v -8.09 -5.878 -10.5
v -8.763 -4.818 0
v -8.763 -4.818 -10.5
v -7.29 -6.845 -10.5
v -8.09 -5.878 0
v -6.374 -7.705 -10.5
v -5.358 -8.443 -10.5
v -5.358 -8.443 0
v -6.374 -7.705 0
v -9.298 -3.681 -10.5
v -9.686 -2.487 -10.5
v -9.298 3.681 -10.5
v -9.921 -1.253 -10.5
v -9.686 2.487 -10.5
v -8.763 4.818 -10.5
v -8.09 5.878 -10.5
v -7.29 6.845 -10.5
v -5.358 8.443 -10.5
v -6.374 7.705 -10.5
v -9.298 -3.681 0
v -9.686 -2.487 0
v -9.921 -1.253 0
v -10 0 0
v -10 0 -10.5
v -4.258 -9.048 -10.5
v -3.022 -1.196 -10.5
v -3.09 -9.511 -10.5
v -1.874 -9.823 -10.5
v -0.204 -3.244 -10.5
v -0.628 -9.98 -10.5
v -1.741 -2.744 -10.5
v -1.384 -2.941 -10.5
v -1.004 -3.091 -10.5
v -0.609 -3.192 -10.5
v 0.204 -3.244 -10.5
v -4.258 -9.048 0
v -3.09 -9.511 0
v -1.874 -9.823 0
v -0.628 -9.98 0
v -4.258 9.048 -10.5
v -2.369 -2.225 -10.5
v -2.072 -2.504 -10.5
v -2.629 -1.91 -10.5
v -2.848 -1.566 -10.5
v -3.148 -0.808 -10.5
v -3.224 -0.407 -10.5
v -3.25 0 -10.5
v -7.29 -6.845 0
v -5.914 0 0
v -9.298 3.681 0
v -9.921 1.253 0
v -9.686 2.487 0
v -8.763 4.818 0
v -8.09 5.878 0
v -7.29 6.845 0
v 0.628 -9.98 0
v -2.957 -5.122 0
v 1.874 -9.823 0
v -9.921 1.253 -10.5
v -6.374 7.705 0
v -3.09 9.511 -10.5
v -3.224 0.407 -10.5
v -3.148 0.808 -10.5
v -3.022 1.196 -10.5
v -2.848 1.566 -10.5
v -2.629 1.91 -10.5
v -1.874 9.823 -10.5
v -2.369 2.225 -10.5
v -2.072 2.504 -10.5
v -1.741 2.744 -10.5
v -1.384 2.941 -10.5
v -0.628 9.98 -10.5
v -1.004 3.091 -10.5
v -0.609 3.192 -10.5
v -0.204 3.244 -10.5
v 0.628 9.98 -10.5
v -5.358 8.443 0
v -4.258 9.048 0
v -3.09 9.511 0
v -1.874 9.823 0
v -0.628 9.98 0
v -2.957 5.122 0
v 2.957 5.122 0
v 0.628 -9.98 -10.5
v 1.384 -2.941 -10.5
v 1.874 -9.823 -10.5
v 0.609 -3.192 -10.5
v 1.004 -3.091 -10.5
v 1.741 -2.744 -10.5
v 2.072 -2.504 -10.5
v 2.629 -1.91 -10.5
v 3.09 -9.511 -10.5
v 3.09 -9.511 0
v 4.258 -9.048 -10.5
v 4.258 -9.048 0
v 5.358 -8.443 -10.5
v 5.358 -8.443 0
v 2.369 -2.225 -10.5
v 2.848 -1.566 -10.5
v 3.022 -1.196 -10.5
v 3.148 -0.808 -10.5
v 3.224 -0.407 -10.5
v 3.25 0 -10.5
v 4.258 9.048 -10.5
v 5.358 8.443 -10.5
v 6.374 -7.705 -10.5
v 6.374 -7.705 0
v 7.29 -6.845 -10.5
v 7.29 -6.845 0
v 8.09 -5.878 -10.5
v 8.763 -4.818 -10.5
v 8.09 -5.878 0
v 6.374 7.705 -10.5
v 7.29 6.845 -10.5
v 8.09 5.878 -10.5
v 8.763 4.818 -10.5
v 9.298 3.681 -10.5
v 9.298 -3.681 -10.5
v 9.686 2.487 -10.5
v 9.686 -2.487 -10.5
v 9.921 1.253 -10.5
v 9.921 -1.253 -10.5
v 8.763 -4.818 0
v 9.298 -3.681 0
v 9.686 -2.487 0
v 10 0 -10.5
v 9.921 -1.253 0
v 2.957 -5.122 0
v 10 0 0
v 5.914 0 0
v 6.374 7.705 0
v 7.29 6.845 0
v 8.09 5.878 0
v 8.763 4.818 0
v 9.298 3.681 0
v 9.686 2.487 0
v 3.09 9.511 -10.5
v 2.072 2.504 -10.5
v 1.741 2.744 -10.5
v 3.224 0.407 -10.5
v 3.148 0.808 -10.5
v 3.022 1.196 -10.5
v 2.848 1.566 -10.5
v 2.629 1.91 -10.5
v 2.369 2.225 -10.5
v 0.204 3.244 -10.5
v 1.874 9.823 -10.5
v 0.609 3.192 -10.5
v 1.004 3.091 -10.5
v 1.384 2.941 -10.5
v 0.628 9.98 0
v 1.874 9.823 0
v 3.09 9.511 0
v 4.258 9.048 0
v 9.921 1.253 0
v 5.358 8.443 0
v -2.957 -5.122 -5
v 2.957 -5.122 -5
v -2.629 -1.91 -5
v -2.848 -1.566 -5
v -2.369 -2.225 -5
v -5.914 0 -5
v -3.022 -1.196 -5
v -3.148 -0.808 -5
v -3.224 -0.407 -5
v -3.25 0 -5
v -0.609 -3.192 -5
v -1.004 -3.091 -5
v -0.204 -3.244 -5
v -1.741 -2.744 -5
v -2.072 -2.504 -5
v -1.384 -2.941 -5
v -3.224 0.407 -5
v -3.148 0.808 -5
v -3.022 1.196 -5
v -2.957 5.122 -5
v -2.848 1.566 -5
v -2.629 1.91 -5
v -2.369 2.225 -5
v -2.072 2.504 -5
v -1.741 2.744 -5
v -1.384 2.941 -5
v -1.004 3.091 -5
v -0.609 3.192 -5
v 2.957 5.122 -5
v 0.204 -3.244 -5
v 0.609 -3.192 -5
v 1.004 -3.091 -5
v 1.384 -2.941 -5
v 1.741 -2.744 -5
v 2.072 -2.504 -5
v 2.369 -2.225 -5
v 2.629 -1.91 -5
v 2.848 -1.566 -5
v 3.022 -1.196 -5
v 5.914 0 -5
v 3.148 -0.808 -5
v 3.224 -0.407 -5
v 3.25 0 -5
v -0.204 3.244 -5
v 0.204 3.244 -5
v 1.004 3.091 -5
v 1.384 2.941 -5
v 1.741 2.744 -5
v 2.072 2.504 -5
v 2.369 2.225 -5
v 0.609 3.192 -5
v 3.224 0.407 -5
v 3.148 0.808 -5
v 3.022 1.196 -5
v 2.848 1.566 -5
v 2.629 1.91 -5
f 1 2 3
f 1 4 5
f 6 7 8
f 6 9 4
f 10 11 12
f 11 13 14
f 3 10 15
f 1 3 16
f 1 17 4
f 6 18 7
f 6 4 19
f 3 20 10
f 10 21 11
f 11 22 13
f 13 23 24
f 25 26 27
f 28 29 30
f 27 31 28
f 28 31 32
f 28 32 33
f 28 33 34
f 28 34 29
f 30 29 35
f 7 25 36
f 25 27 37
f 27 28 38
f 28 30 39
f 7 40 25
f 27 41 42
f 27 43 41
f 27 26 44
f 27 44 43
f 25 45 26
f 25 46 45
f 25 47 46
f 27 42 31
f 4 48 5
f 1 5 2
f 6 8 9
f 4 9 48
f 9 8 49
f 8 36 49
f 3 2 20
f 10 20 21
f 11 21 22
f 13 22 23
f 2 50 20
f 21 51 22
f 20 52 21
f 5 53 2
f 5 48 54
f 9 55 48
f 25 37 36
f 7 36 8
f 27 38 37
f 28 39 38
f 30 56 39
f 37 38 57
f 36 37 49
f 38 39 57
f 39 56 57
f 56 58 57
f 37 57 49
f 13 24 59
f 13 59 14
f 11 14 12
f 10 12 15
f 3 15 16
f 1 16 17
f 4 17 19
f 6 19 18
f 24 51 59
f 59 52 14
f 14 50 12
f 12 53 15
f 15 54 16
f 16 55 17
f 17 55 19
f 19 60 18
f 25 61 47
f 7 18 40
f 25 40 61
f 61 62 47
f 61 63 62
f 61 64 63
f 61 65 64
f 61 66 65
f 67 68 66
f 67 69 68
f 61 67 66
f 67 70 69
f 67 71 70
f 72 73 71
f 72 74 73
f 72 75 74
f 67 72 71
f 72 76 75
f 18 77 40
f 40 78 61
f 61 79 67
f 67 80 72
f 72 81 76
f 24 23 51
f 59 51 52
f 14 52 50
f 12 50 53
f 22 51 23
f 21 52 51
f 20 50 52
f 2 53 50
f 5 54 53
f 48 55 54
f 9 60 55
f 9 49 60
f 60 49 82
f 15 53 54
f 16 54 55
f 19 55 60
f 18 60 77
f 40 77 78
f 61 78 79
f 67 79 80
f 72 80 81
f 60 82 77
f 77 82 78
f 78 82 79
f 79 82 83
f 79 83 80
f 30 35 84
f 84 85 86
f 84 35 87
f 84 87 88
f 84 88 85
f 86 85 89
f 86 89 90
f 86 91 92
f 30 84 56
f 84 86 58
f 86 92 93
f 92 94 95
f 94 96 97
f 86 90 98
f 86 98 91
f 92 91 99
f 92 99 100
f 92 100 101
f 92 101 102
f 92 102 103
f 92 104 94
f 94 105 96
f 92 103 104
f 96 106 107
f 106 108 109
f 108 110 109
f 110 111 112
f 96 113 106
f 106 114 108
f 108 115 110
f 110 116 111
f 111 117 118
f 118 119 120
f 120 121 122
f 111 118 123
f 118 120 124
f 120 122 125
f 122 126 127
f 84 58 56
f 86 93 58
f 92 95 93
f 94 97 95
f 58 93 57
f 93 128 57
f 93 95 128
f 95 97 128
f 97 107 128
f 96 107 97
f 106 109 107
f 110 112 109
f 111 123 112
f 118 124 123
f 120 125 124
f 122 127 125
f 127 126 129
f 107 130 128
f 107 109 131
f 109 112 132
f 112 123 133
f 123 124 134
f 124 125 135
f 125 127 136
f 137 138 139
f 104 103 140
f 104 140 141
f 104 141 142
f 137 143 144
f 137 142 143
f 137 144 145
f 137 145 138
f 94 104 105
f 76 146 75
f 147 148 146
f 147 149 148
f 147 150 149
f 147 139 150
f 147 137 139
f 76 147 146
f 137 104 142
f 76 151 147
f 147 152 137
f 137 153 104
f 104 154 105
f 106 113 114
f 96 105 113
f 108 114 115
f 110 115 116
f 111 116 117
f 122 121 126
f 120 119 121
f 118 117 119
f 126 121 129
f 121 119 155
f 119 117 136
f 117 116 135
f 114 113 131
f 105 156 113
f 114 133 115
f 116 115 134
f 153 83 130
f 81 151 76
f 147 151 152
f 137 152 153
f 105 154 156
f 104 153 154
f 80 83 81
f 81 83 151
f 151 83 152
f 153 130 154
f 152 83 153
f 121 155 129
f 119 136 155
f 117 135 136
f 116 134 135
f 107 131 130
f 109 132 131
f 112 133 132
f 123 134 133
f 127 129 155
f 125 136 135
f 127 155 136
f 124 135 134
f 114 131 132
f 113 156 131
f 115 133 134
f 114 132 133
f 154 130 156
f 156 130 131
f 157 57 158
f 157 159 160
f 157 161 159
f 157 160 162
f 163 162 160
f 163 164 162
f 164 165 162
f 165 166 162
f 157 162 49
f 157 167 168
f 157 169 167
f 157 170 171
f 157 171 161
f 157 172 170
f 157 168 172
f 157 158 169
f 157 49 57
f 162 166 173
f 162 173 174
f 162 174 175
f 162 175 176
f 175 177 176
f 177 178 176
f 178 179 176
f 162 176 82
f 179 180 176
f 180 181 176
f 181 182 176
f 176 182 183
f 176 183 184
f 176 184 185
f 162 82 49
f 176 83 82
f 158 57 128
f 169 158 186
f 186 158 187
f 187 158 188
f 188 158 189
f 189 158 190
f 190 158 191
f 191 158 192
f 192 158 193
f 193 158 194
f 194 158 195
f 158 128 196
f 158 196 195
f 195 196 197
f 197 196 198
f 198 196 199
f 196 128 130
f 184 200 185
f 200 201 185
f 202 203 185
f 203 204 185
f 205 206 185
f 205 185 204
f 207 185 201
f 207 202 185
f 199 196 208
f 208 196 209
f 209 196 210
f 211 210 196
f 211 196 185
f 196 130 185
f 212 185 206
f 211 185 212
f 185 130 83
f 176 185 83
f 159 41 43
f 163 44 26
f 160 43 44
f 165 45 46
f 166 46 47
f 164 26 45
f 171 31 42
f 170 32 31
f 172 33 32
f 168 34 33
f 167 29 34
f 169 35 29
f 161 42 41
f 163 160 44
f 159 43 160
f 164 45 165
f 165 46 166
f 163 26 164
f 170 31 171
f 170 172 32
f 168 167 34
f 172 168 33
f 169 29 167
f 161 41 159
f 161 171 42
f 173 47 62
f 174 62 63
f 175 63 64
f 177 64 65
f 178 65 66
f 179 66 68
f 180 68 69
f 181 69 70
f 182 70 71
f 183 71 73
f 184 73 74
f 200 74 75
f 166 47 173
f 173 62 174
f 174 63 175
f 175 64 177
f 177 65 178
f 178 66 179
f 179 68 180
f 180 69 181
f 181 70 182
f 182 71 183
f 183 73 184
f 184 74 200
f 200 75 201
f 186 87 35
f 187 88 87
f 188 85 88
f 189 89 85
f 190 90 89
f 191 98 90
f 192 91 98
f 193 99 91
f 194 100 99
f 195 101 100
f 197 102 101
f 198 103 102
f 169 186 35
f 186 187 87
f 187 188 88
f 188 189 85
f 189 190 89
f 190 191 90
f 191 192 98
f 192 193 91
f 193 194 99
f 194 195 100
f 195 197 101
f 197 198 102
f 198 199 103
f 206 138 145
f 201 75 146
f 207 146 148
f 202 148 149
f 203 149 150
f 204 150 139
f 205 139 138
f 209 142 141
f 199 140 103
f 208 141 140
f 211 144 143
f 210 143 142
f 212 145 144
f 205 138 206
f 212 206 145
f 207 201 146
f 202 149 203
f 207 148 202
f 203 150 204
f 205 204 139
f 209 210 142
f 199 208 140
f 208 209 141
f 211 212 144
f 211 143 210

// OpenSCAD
$fn = 50;


difference() {
	union() {
		translate(v = [0, 0, -10.5000000000]) {
			cylinder(h = 10.5000000000, r = 10.0000000000);
		}
		#translate(v = [0, 0, -12.0000000000]) {
			cylinder(h = 12, r = 2.8750000000);
		}
	}
	union() {
		translate(v = [0, 0, 0]) {
			rotate(a = [0, 0, 0]) {
				difference() {
					union() {
						translate(v = [0, 0, -5]) {
							linear_extrude(height = 5) {
								polygon(points = [[5.9142500000, 0.0000000000], [2.9571250000, 5.1218907443], [-2.9571250000, 5.1218907443], [-5.9142500000, 0.0000000000], [-2.9571250000, -5.1218907443], [2.9571250000, -5.1218907443]]);
							}
						}
					}
					union();
				}
			}
		}
		#translate(v = [0, 0, -100.0000000000]) {
			cylinder(h = 200, r = 3.2500000000);
		}
	}
}
